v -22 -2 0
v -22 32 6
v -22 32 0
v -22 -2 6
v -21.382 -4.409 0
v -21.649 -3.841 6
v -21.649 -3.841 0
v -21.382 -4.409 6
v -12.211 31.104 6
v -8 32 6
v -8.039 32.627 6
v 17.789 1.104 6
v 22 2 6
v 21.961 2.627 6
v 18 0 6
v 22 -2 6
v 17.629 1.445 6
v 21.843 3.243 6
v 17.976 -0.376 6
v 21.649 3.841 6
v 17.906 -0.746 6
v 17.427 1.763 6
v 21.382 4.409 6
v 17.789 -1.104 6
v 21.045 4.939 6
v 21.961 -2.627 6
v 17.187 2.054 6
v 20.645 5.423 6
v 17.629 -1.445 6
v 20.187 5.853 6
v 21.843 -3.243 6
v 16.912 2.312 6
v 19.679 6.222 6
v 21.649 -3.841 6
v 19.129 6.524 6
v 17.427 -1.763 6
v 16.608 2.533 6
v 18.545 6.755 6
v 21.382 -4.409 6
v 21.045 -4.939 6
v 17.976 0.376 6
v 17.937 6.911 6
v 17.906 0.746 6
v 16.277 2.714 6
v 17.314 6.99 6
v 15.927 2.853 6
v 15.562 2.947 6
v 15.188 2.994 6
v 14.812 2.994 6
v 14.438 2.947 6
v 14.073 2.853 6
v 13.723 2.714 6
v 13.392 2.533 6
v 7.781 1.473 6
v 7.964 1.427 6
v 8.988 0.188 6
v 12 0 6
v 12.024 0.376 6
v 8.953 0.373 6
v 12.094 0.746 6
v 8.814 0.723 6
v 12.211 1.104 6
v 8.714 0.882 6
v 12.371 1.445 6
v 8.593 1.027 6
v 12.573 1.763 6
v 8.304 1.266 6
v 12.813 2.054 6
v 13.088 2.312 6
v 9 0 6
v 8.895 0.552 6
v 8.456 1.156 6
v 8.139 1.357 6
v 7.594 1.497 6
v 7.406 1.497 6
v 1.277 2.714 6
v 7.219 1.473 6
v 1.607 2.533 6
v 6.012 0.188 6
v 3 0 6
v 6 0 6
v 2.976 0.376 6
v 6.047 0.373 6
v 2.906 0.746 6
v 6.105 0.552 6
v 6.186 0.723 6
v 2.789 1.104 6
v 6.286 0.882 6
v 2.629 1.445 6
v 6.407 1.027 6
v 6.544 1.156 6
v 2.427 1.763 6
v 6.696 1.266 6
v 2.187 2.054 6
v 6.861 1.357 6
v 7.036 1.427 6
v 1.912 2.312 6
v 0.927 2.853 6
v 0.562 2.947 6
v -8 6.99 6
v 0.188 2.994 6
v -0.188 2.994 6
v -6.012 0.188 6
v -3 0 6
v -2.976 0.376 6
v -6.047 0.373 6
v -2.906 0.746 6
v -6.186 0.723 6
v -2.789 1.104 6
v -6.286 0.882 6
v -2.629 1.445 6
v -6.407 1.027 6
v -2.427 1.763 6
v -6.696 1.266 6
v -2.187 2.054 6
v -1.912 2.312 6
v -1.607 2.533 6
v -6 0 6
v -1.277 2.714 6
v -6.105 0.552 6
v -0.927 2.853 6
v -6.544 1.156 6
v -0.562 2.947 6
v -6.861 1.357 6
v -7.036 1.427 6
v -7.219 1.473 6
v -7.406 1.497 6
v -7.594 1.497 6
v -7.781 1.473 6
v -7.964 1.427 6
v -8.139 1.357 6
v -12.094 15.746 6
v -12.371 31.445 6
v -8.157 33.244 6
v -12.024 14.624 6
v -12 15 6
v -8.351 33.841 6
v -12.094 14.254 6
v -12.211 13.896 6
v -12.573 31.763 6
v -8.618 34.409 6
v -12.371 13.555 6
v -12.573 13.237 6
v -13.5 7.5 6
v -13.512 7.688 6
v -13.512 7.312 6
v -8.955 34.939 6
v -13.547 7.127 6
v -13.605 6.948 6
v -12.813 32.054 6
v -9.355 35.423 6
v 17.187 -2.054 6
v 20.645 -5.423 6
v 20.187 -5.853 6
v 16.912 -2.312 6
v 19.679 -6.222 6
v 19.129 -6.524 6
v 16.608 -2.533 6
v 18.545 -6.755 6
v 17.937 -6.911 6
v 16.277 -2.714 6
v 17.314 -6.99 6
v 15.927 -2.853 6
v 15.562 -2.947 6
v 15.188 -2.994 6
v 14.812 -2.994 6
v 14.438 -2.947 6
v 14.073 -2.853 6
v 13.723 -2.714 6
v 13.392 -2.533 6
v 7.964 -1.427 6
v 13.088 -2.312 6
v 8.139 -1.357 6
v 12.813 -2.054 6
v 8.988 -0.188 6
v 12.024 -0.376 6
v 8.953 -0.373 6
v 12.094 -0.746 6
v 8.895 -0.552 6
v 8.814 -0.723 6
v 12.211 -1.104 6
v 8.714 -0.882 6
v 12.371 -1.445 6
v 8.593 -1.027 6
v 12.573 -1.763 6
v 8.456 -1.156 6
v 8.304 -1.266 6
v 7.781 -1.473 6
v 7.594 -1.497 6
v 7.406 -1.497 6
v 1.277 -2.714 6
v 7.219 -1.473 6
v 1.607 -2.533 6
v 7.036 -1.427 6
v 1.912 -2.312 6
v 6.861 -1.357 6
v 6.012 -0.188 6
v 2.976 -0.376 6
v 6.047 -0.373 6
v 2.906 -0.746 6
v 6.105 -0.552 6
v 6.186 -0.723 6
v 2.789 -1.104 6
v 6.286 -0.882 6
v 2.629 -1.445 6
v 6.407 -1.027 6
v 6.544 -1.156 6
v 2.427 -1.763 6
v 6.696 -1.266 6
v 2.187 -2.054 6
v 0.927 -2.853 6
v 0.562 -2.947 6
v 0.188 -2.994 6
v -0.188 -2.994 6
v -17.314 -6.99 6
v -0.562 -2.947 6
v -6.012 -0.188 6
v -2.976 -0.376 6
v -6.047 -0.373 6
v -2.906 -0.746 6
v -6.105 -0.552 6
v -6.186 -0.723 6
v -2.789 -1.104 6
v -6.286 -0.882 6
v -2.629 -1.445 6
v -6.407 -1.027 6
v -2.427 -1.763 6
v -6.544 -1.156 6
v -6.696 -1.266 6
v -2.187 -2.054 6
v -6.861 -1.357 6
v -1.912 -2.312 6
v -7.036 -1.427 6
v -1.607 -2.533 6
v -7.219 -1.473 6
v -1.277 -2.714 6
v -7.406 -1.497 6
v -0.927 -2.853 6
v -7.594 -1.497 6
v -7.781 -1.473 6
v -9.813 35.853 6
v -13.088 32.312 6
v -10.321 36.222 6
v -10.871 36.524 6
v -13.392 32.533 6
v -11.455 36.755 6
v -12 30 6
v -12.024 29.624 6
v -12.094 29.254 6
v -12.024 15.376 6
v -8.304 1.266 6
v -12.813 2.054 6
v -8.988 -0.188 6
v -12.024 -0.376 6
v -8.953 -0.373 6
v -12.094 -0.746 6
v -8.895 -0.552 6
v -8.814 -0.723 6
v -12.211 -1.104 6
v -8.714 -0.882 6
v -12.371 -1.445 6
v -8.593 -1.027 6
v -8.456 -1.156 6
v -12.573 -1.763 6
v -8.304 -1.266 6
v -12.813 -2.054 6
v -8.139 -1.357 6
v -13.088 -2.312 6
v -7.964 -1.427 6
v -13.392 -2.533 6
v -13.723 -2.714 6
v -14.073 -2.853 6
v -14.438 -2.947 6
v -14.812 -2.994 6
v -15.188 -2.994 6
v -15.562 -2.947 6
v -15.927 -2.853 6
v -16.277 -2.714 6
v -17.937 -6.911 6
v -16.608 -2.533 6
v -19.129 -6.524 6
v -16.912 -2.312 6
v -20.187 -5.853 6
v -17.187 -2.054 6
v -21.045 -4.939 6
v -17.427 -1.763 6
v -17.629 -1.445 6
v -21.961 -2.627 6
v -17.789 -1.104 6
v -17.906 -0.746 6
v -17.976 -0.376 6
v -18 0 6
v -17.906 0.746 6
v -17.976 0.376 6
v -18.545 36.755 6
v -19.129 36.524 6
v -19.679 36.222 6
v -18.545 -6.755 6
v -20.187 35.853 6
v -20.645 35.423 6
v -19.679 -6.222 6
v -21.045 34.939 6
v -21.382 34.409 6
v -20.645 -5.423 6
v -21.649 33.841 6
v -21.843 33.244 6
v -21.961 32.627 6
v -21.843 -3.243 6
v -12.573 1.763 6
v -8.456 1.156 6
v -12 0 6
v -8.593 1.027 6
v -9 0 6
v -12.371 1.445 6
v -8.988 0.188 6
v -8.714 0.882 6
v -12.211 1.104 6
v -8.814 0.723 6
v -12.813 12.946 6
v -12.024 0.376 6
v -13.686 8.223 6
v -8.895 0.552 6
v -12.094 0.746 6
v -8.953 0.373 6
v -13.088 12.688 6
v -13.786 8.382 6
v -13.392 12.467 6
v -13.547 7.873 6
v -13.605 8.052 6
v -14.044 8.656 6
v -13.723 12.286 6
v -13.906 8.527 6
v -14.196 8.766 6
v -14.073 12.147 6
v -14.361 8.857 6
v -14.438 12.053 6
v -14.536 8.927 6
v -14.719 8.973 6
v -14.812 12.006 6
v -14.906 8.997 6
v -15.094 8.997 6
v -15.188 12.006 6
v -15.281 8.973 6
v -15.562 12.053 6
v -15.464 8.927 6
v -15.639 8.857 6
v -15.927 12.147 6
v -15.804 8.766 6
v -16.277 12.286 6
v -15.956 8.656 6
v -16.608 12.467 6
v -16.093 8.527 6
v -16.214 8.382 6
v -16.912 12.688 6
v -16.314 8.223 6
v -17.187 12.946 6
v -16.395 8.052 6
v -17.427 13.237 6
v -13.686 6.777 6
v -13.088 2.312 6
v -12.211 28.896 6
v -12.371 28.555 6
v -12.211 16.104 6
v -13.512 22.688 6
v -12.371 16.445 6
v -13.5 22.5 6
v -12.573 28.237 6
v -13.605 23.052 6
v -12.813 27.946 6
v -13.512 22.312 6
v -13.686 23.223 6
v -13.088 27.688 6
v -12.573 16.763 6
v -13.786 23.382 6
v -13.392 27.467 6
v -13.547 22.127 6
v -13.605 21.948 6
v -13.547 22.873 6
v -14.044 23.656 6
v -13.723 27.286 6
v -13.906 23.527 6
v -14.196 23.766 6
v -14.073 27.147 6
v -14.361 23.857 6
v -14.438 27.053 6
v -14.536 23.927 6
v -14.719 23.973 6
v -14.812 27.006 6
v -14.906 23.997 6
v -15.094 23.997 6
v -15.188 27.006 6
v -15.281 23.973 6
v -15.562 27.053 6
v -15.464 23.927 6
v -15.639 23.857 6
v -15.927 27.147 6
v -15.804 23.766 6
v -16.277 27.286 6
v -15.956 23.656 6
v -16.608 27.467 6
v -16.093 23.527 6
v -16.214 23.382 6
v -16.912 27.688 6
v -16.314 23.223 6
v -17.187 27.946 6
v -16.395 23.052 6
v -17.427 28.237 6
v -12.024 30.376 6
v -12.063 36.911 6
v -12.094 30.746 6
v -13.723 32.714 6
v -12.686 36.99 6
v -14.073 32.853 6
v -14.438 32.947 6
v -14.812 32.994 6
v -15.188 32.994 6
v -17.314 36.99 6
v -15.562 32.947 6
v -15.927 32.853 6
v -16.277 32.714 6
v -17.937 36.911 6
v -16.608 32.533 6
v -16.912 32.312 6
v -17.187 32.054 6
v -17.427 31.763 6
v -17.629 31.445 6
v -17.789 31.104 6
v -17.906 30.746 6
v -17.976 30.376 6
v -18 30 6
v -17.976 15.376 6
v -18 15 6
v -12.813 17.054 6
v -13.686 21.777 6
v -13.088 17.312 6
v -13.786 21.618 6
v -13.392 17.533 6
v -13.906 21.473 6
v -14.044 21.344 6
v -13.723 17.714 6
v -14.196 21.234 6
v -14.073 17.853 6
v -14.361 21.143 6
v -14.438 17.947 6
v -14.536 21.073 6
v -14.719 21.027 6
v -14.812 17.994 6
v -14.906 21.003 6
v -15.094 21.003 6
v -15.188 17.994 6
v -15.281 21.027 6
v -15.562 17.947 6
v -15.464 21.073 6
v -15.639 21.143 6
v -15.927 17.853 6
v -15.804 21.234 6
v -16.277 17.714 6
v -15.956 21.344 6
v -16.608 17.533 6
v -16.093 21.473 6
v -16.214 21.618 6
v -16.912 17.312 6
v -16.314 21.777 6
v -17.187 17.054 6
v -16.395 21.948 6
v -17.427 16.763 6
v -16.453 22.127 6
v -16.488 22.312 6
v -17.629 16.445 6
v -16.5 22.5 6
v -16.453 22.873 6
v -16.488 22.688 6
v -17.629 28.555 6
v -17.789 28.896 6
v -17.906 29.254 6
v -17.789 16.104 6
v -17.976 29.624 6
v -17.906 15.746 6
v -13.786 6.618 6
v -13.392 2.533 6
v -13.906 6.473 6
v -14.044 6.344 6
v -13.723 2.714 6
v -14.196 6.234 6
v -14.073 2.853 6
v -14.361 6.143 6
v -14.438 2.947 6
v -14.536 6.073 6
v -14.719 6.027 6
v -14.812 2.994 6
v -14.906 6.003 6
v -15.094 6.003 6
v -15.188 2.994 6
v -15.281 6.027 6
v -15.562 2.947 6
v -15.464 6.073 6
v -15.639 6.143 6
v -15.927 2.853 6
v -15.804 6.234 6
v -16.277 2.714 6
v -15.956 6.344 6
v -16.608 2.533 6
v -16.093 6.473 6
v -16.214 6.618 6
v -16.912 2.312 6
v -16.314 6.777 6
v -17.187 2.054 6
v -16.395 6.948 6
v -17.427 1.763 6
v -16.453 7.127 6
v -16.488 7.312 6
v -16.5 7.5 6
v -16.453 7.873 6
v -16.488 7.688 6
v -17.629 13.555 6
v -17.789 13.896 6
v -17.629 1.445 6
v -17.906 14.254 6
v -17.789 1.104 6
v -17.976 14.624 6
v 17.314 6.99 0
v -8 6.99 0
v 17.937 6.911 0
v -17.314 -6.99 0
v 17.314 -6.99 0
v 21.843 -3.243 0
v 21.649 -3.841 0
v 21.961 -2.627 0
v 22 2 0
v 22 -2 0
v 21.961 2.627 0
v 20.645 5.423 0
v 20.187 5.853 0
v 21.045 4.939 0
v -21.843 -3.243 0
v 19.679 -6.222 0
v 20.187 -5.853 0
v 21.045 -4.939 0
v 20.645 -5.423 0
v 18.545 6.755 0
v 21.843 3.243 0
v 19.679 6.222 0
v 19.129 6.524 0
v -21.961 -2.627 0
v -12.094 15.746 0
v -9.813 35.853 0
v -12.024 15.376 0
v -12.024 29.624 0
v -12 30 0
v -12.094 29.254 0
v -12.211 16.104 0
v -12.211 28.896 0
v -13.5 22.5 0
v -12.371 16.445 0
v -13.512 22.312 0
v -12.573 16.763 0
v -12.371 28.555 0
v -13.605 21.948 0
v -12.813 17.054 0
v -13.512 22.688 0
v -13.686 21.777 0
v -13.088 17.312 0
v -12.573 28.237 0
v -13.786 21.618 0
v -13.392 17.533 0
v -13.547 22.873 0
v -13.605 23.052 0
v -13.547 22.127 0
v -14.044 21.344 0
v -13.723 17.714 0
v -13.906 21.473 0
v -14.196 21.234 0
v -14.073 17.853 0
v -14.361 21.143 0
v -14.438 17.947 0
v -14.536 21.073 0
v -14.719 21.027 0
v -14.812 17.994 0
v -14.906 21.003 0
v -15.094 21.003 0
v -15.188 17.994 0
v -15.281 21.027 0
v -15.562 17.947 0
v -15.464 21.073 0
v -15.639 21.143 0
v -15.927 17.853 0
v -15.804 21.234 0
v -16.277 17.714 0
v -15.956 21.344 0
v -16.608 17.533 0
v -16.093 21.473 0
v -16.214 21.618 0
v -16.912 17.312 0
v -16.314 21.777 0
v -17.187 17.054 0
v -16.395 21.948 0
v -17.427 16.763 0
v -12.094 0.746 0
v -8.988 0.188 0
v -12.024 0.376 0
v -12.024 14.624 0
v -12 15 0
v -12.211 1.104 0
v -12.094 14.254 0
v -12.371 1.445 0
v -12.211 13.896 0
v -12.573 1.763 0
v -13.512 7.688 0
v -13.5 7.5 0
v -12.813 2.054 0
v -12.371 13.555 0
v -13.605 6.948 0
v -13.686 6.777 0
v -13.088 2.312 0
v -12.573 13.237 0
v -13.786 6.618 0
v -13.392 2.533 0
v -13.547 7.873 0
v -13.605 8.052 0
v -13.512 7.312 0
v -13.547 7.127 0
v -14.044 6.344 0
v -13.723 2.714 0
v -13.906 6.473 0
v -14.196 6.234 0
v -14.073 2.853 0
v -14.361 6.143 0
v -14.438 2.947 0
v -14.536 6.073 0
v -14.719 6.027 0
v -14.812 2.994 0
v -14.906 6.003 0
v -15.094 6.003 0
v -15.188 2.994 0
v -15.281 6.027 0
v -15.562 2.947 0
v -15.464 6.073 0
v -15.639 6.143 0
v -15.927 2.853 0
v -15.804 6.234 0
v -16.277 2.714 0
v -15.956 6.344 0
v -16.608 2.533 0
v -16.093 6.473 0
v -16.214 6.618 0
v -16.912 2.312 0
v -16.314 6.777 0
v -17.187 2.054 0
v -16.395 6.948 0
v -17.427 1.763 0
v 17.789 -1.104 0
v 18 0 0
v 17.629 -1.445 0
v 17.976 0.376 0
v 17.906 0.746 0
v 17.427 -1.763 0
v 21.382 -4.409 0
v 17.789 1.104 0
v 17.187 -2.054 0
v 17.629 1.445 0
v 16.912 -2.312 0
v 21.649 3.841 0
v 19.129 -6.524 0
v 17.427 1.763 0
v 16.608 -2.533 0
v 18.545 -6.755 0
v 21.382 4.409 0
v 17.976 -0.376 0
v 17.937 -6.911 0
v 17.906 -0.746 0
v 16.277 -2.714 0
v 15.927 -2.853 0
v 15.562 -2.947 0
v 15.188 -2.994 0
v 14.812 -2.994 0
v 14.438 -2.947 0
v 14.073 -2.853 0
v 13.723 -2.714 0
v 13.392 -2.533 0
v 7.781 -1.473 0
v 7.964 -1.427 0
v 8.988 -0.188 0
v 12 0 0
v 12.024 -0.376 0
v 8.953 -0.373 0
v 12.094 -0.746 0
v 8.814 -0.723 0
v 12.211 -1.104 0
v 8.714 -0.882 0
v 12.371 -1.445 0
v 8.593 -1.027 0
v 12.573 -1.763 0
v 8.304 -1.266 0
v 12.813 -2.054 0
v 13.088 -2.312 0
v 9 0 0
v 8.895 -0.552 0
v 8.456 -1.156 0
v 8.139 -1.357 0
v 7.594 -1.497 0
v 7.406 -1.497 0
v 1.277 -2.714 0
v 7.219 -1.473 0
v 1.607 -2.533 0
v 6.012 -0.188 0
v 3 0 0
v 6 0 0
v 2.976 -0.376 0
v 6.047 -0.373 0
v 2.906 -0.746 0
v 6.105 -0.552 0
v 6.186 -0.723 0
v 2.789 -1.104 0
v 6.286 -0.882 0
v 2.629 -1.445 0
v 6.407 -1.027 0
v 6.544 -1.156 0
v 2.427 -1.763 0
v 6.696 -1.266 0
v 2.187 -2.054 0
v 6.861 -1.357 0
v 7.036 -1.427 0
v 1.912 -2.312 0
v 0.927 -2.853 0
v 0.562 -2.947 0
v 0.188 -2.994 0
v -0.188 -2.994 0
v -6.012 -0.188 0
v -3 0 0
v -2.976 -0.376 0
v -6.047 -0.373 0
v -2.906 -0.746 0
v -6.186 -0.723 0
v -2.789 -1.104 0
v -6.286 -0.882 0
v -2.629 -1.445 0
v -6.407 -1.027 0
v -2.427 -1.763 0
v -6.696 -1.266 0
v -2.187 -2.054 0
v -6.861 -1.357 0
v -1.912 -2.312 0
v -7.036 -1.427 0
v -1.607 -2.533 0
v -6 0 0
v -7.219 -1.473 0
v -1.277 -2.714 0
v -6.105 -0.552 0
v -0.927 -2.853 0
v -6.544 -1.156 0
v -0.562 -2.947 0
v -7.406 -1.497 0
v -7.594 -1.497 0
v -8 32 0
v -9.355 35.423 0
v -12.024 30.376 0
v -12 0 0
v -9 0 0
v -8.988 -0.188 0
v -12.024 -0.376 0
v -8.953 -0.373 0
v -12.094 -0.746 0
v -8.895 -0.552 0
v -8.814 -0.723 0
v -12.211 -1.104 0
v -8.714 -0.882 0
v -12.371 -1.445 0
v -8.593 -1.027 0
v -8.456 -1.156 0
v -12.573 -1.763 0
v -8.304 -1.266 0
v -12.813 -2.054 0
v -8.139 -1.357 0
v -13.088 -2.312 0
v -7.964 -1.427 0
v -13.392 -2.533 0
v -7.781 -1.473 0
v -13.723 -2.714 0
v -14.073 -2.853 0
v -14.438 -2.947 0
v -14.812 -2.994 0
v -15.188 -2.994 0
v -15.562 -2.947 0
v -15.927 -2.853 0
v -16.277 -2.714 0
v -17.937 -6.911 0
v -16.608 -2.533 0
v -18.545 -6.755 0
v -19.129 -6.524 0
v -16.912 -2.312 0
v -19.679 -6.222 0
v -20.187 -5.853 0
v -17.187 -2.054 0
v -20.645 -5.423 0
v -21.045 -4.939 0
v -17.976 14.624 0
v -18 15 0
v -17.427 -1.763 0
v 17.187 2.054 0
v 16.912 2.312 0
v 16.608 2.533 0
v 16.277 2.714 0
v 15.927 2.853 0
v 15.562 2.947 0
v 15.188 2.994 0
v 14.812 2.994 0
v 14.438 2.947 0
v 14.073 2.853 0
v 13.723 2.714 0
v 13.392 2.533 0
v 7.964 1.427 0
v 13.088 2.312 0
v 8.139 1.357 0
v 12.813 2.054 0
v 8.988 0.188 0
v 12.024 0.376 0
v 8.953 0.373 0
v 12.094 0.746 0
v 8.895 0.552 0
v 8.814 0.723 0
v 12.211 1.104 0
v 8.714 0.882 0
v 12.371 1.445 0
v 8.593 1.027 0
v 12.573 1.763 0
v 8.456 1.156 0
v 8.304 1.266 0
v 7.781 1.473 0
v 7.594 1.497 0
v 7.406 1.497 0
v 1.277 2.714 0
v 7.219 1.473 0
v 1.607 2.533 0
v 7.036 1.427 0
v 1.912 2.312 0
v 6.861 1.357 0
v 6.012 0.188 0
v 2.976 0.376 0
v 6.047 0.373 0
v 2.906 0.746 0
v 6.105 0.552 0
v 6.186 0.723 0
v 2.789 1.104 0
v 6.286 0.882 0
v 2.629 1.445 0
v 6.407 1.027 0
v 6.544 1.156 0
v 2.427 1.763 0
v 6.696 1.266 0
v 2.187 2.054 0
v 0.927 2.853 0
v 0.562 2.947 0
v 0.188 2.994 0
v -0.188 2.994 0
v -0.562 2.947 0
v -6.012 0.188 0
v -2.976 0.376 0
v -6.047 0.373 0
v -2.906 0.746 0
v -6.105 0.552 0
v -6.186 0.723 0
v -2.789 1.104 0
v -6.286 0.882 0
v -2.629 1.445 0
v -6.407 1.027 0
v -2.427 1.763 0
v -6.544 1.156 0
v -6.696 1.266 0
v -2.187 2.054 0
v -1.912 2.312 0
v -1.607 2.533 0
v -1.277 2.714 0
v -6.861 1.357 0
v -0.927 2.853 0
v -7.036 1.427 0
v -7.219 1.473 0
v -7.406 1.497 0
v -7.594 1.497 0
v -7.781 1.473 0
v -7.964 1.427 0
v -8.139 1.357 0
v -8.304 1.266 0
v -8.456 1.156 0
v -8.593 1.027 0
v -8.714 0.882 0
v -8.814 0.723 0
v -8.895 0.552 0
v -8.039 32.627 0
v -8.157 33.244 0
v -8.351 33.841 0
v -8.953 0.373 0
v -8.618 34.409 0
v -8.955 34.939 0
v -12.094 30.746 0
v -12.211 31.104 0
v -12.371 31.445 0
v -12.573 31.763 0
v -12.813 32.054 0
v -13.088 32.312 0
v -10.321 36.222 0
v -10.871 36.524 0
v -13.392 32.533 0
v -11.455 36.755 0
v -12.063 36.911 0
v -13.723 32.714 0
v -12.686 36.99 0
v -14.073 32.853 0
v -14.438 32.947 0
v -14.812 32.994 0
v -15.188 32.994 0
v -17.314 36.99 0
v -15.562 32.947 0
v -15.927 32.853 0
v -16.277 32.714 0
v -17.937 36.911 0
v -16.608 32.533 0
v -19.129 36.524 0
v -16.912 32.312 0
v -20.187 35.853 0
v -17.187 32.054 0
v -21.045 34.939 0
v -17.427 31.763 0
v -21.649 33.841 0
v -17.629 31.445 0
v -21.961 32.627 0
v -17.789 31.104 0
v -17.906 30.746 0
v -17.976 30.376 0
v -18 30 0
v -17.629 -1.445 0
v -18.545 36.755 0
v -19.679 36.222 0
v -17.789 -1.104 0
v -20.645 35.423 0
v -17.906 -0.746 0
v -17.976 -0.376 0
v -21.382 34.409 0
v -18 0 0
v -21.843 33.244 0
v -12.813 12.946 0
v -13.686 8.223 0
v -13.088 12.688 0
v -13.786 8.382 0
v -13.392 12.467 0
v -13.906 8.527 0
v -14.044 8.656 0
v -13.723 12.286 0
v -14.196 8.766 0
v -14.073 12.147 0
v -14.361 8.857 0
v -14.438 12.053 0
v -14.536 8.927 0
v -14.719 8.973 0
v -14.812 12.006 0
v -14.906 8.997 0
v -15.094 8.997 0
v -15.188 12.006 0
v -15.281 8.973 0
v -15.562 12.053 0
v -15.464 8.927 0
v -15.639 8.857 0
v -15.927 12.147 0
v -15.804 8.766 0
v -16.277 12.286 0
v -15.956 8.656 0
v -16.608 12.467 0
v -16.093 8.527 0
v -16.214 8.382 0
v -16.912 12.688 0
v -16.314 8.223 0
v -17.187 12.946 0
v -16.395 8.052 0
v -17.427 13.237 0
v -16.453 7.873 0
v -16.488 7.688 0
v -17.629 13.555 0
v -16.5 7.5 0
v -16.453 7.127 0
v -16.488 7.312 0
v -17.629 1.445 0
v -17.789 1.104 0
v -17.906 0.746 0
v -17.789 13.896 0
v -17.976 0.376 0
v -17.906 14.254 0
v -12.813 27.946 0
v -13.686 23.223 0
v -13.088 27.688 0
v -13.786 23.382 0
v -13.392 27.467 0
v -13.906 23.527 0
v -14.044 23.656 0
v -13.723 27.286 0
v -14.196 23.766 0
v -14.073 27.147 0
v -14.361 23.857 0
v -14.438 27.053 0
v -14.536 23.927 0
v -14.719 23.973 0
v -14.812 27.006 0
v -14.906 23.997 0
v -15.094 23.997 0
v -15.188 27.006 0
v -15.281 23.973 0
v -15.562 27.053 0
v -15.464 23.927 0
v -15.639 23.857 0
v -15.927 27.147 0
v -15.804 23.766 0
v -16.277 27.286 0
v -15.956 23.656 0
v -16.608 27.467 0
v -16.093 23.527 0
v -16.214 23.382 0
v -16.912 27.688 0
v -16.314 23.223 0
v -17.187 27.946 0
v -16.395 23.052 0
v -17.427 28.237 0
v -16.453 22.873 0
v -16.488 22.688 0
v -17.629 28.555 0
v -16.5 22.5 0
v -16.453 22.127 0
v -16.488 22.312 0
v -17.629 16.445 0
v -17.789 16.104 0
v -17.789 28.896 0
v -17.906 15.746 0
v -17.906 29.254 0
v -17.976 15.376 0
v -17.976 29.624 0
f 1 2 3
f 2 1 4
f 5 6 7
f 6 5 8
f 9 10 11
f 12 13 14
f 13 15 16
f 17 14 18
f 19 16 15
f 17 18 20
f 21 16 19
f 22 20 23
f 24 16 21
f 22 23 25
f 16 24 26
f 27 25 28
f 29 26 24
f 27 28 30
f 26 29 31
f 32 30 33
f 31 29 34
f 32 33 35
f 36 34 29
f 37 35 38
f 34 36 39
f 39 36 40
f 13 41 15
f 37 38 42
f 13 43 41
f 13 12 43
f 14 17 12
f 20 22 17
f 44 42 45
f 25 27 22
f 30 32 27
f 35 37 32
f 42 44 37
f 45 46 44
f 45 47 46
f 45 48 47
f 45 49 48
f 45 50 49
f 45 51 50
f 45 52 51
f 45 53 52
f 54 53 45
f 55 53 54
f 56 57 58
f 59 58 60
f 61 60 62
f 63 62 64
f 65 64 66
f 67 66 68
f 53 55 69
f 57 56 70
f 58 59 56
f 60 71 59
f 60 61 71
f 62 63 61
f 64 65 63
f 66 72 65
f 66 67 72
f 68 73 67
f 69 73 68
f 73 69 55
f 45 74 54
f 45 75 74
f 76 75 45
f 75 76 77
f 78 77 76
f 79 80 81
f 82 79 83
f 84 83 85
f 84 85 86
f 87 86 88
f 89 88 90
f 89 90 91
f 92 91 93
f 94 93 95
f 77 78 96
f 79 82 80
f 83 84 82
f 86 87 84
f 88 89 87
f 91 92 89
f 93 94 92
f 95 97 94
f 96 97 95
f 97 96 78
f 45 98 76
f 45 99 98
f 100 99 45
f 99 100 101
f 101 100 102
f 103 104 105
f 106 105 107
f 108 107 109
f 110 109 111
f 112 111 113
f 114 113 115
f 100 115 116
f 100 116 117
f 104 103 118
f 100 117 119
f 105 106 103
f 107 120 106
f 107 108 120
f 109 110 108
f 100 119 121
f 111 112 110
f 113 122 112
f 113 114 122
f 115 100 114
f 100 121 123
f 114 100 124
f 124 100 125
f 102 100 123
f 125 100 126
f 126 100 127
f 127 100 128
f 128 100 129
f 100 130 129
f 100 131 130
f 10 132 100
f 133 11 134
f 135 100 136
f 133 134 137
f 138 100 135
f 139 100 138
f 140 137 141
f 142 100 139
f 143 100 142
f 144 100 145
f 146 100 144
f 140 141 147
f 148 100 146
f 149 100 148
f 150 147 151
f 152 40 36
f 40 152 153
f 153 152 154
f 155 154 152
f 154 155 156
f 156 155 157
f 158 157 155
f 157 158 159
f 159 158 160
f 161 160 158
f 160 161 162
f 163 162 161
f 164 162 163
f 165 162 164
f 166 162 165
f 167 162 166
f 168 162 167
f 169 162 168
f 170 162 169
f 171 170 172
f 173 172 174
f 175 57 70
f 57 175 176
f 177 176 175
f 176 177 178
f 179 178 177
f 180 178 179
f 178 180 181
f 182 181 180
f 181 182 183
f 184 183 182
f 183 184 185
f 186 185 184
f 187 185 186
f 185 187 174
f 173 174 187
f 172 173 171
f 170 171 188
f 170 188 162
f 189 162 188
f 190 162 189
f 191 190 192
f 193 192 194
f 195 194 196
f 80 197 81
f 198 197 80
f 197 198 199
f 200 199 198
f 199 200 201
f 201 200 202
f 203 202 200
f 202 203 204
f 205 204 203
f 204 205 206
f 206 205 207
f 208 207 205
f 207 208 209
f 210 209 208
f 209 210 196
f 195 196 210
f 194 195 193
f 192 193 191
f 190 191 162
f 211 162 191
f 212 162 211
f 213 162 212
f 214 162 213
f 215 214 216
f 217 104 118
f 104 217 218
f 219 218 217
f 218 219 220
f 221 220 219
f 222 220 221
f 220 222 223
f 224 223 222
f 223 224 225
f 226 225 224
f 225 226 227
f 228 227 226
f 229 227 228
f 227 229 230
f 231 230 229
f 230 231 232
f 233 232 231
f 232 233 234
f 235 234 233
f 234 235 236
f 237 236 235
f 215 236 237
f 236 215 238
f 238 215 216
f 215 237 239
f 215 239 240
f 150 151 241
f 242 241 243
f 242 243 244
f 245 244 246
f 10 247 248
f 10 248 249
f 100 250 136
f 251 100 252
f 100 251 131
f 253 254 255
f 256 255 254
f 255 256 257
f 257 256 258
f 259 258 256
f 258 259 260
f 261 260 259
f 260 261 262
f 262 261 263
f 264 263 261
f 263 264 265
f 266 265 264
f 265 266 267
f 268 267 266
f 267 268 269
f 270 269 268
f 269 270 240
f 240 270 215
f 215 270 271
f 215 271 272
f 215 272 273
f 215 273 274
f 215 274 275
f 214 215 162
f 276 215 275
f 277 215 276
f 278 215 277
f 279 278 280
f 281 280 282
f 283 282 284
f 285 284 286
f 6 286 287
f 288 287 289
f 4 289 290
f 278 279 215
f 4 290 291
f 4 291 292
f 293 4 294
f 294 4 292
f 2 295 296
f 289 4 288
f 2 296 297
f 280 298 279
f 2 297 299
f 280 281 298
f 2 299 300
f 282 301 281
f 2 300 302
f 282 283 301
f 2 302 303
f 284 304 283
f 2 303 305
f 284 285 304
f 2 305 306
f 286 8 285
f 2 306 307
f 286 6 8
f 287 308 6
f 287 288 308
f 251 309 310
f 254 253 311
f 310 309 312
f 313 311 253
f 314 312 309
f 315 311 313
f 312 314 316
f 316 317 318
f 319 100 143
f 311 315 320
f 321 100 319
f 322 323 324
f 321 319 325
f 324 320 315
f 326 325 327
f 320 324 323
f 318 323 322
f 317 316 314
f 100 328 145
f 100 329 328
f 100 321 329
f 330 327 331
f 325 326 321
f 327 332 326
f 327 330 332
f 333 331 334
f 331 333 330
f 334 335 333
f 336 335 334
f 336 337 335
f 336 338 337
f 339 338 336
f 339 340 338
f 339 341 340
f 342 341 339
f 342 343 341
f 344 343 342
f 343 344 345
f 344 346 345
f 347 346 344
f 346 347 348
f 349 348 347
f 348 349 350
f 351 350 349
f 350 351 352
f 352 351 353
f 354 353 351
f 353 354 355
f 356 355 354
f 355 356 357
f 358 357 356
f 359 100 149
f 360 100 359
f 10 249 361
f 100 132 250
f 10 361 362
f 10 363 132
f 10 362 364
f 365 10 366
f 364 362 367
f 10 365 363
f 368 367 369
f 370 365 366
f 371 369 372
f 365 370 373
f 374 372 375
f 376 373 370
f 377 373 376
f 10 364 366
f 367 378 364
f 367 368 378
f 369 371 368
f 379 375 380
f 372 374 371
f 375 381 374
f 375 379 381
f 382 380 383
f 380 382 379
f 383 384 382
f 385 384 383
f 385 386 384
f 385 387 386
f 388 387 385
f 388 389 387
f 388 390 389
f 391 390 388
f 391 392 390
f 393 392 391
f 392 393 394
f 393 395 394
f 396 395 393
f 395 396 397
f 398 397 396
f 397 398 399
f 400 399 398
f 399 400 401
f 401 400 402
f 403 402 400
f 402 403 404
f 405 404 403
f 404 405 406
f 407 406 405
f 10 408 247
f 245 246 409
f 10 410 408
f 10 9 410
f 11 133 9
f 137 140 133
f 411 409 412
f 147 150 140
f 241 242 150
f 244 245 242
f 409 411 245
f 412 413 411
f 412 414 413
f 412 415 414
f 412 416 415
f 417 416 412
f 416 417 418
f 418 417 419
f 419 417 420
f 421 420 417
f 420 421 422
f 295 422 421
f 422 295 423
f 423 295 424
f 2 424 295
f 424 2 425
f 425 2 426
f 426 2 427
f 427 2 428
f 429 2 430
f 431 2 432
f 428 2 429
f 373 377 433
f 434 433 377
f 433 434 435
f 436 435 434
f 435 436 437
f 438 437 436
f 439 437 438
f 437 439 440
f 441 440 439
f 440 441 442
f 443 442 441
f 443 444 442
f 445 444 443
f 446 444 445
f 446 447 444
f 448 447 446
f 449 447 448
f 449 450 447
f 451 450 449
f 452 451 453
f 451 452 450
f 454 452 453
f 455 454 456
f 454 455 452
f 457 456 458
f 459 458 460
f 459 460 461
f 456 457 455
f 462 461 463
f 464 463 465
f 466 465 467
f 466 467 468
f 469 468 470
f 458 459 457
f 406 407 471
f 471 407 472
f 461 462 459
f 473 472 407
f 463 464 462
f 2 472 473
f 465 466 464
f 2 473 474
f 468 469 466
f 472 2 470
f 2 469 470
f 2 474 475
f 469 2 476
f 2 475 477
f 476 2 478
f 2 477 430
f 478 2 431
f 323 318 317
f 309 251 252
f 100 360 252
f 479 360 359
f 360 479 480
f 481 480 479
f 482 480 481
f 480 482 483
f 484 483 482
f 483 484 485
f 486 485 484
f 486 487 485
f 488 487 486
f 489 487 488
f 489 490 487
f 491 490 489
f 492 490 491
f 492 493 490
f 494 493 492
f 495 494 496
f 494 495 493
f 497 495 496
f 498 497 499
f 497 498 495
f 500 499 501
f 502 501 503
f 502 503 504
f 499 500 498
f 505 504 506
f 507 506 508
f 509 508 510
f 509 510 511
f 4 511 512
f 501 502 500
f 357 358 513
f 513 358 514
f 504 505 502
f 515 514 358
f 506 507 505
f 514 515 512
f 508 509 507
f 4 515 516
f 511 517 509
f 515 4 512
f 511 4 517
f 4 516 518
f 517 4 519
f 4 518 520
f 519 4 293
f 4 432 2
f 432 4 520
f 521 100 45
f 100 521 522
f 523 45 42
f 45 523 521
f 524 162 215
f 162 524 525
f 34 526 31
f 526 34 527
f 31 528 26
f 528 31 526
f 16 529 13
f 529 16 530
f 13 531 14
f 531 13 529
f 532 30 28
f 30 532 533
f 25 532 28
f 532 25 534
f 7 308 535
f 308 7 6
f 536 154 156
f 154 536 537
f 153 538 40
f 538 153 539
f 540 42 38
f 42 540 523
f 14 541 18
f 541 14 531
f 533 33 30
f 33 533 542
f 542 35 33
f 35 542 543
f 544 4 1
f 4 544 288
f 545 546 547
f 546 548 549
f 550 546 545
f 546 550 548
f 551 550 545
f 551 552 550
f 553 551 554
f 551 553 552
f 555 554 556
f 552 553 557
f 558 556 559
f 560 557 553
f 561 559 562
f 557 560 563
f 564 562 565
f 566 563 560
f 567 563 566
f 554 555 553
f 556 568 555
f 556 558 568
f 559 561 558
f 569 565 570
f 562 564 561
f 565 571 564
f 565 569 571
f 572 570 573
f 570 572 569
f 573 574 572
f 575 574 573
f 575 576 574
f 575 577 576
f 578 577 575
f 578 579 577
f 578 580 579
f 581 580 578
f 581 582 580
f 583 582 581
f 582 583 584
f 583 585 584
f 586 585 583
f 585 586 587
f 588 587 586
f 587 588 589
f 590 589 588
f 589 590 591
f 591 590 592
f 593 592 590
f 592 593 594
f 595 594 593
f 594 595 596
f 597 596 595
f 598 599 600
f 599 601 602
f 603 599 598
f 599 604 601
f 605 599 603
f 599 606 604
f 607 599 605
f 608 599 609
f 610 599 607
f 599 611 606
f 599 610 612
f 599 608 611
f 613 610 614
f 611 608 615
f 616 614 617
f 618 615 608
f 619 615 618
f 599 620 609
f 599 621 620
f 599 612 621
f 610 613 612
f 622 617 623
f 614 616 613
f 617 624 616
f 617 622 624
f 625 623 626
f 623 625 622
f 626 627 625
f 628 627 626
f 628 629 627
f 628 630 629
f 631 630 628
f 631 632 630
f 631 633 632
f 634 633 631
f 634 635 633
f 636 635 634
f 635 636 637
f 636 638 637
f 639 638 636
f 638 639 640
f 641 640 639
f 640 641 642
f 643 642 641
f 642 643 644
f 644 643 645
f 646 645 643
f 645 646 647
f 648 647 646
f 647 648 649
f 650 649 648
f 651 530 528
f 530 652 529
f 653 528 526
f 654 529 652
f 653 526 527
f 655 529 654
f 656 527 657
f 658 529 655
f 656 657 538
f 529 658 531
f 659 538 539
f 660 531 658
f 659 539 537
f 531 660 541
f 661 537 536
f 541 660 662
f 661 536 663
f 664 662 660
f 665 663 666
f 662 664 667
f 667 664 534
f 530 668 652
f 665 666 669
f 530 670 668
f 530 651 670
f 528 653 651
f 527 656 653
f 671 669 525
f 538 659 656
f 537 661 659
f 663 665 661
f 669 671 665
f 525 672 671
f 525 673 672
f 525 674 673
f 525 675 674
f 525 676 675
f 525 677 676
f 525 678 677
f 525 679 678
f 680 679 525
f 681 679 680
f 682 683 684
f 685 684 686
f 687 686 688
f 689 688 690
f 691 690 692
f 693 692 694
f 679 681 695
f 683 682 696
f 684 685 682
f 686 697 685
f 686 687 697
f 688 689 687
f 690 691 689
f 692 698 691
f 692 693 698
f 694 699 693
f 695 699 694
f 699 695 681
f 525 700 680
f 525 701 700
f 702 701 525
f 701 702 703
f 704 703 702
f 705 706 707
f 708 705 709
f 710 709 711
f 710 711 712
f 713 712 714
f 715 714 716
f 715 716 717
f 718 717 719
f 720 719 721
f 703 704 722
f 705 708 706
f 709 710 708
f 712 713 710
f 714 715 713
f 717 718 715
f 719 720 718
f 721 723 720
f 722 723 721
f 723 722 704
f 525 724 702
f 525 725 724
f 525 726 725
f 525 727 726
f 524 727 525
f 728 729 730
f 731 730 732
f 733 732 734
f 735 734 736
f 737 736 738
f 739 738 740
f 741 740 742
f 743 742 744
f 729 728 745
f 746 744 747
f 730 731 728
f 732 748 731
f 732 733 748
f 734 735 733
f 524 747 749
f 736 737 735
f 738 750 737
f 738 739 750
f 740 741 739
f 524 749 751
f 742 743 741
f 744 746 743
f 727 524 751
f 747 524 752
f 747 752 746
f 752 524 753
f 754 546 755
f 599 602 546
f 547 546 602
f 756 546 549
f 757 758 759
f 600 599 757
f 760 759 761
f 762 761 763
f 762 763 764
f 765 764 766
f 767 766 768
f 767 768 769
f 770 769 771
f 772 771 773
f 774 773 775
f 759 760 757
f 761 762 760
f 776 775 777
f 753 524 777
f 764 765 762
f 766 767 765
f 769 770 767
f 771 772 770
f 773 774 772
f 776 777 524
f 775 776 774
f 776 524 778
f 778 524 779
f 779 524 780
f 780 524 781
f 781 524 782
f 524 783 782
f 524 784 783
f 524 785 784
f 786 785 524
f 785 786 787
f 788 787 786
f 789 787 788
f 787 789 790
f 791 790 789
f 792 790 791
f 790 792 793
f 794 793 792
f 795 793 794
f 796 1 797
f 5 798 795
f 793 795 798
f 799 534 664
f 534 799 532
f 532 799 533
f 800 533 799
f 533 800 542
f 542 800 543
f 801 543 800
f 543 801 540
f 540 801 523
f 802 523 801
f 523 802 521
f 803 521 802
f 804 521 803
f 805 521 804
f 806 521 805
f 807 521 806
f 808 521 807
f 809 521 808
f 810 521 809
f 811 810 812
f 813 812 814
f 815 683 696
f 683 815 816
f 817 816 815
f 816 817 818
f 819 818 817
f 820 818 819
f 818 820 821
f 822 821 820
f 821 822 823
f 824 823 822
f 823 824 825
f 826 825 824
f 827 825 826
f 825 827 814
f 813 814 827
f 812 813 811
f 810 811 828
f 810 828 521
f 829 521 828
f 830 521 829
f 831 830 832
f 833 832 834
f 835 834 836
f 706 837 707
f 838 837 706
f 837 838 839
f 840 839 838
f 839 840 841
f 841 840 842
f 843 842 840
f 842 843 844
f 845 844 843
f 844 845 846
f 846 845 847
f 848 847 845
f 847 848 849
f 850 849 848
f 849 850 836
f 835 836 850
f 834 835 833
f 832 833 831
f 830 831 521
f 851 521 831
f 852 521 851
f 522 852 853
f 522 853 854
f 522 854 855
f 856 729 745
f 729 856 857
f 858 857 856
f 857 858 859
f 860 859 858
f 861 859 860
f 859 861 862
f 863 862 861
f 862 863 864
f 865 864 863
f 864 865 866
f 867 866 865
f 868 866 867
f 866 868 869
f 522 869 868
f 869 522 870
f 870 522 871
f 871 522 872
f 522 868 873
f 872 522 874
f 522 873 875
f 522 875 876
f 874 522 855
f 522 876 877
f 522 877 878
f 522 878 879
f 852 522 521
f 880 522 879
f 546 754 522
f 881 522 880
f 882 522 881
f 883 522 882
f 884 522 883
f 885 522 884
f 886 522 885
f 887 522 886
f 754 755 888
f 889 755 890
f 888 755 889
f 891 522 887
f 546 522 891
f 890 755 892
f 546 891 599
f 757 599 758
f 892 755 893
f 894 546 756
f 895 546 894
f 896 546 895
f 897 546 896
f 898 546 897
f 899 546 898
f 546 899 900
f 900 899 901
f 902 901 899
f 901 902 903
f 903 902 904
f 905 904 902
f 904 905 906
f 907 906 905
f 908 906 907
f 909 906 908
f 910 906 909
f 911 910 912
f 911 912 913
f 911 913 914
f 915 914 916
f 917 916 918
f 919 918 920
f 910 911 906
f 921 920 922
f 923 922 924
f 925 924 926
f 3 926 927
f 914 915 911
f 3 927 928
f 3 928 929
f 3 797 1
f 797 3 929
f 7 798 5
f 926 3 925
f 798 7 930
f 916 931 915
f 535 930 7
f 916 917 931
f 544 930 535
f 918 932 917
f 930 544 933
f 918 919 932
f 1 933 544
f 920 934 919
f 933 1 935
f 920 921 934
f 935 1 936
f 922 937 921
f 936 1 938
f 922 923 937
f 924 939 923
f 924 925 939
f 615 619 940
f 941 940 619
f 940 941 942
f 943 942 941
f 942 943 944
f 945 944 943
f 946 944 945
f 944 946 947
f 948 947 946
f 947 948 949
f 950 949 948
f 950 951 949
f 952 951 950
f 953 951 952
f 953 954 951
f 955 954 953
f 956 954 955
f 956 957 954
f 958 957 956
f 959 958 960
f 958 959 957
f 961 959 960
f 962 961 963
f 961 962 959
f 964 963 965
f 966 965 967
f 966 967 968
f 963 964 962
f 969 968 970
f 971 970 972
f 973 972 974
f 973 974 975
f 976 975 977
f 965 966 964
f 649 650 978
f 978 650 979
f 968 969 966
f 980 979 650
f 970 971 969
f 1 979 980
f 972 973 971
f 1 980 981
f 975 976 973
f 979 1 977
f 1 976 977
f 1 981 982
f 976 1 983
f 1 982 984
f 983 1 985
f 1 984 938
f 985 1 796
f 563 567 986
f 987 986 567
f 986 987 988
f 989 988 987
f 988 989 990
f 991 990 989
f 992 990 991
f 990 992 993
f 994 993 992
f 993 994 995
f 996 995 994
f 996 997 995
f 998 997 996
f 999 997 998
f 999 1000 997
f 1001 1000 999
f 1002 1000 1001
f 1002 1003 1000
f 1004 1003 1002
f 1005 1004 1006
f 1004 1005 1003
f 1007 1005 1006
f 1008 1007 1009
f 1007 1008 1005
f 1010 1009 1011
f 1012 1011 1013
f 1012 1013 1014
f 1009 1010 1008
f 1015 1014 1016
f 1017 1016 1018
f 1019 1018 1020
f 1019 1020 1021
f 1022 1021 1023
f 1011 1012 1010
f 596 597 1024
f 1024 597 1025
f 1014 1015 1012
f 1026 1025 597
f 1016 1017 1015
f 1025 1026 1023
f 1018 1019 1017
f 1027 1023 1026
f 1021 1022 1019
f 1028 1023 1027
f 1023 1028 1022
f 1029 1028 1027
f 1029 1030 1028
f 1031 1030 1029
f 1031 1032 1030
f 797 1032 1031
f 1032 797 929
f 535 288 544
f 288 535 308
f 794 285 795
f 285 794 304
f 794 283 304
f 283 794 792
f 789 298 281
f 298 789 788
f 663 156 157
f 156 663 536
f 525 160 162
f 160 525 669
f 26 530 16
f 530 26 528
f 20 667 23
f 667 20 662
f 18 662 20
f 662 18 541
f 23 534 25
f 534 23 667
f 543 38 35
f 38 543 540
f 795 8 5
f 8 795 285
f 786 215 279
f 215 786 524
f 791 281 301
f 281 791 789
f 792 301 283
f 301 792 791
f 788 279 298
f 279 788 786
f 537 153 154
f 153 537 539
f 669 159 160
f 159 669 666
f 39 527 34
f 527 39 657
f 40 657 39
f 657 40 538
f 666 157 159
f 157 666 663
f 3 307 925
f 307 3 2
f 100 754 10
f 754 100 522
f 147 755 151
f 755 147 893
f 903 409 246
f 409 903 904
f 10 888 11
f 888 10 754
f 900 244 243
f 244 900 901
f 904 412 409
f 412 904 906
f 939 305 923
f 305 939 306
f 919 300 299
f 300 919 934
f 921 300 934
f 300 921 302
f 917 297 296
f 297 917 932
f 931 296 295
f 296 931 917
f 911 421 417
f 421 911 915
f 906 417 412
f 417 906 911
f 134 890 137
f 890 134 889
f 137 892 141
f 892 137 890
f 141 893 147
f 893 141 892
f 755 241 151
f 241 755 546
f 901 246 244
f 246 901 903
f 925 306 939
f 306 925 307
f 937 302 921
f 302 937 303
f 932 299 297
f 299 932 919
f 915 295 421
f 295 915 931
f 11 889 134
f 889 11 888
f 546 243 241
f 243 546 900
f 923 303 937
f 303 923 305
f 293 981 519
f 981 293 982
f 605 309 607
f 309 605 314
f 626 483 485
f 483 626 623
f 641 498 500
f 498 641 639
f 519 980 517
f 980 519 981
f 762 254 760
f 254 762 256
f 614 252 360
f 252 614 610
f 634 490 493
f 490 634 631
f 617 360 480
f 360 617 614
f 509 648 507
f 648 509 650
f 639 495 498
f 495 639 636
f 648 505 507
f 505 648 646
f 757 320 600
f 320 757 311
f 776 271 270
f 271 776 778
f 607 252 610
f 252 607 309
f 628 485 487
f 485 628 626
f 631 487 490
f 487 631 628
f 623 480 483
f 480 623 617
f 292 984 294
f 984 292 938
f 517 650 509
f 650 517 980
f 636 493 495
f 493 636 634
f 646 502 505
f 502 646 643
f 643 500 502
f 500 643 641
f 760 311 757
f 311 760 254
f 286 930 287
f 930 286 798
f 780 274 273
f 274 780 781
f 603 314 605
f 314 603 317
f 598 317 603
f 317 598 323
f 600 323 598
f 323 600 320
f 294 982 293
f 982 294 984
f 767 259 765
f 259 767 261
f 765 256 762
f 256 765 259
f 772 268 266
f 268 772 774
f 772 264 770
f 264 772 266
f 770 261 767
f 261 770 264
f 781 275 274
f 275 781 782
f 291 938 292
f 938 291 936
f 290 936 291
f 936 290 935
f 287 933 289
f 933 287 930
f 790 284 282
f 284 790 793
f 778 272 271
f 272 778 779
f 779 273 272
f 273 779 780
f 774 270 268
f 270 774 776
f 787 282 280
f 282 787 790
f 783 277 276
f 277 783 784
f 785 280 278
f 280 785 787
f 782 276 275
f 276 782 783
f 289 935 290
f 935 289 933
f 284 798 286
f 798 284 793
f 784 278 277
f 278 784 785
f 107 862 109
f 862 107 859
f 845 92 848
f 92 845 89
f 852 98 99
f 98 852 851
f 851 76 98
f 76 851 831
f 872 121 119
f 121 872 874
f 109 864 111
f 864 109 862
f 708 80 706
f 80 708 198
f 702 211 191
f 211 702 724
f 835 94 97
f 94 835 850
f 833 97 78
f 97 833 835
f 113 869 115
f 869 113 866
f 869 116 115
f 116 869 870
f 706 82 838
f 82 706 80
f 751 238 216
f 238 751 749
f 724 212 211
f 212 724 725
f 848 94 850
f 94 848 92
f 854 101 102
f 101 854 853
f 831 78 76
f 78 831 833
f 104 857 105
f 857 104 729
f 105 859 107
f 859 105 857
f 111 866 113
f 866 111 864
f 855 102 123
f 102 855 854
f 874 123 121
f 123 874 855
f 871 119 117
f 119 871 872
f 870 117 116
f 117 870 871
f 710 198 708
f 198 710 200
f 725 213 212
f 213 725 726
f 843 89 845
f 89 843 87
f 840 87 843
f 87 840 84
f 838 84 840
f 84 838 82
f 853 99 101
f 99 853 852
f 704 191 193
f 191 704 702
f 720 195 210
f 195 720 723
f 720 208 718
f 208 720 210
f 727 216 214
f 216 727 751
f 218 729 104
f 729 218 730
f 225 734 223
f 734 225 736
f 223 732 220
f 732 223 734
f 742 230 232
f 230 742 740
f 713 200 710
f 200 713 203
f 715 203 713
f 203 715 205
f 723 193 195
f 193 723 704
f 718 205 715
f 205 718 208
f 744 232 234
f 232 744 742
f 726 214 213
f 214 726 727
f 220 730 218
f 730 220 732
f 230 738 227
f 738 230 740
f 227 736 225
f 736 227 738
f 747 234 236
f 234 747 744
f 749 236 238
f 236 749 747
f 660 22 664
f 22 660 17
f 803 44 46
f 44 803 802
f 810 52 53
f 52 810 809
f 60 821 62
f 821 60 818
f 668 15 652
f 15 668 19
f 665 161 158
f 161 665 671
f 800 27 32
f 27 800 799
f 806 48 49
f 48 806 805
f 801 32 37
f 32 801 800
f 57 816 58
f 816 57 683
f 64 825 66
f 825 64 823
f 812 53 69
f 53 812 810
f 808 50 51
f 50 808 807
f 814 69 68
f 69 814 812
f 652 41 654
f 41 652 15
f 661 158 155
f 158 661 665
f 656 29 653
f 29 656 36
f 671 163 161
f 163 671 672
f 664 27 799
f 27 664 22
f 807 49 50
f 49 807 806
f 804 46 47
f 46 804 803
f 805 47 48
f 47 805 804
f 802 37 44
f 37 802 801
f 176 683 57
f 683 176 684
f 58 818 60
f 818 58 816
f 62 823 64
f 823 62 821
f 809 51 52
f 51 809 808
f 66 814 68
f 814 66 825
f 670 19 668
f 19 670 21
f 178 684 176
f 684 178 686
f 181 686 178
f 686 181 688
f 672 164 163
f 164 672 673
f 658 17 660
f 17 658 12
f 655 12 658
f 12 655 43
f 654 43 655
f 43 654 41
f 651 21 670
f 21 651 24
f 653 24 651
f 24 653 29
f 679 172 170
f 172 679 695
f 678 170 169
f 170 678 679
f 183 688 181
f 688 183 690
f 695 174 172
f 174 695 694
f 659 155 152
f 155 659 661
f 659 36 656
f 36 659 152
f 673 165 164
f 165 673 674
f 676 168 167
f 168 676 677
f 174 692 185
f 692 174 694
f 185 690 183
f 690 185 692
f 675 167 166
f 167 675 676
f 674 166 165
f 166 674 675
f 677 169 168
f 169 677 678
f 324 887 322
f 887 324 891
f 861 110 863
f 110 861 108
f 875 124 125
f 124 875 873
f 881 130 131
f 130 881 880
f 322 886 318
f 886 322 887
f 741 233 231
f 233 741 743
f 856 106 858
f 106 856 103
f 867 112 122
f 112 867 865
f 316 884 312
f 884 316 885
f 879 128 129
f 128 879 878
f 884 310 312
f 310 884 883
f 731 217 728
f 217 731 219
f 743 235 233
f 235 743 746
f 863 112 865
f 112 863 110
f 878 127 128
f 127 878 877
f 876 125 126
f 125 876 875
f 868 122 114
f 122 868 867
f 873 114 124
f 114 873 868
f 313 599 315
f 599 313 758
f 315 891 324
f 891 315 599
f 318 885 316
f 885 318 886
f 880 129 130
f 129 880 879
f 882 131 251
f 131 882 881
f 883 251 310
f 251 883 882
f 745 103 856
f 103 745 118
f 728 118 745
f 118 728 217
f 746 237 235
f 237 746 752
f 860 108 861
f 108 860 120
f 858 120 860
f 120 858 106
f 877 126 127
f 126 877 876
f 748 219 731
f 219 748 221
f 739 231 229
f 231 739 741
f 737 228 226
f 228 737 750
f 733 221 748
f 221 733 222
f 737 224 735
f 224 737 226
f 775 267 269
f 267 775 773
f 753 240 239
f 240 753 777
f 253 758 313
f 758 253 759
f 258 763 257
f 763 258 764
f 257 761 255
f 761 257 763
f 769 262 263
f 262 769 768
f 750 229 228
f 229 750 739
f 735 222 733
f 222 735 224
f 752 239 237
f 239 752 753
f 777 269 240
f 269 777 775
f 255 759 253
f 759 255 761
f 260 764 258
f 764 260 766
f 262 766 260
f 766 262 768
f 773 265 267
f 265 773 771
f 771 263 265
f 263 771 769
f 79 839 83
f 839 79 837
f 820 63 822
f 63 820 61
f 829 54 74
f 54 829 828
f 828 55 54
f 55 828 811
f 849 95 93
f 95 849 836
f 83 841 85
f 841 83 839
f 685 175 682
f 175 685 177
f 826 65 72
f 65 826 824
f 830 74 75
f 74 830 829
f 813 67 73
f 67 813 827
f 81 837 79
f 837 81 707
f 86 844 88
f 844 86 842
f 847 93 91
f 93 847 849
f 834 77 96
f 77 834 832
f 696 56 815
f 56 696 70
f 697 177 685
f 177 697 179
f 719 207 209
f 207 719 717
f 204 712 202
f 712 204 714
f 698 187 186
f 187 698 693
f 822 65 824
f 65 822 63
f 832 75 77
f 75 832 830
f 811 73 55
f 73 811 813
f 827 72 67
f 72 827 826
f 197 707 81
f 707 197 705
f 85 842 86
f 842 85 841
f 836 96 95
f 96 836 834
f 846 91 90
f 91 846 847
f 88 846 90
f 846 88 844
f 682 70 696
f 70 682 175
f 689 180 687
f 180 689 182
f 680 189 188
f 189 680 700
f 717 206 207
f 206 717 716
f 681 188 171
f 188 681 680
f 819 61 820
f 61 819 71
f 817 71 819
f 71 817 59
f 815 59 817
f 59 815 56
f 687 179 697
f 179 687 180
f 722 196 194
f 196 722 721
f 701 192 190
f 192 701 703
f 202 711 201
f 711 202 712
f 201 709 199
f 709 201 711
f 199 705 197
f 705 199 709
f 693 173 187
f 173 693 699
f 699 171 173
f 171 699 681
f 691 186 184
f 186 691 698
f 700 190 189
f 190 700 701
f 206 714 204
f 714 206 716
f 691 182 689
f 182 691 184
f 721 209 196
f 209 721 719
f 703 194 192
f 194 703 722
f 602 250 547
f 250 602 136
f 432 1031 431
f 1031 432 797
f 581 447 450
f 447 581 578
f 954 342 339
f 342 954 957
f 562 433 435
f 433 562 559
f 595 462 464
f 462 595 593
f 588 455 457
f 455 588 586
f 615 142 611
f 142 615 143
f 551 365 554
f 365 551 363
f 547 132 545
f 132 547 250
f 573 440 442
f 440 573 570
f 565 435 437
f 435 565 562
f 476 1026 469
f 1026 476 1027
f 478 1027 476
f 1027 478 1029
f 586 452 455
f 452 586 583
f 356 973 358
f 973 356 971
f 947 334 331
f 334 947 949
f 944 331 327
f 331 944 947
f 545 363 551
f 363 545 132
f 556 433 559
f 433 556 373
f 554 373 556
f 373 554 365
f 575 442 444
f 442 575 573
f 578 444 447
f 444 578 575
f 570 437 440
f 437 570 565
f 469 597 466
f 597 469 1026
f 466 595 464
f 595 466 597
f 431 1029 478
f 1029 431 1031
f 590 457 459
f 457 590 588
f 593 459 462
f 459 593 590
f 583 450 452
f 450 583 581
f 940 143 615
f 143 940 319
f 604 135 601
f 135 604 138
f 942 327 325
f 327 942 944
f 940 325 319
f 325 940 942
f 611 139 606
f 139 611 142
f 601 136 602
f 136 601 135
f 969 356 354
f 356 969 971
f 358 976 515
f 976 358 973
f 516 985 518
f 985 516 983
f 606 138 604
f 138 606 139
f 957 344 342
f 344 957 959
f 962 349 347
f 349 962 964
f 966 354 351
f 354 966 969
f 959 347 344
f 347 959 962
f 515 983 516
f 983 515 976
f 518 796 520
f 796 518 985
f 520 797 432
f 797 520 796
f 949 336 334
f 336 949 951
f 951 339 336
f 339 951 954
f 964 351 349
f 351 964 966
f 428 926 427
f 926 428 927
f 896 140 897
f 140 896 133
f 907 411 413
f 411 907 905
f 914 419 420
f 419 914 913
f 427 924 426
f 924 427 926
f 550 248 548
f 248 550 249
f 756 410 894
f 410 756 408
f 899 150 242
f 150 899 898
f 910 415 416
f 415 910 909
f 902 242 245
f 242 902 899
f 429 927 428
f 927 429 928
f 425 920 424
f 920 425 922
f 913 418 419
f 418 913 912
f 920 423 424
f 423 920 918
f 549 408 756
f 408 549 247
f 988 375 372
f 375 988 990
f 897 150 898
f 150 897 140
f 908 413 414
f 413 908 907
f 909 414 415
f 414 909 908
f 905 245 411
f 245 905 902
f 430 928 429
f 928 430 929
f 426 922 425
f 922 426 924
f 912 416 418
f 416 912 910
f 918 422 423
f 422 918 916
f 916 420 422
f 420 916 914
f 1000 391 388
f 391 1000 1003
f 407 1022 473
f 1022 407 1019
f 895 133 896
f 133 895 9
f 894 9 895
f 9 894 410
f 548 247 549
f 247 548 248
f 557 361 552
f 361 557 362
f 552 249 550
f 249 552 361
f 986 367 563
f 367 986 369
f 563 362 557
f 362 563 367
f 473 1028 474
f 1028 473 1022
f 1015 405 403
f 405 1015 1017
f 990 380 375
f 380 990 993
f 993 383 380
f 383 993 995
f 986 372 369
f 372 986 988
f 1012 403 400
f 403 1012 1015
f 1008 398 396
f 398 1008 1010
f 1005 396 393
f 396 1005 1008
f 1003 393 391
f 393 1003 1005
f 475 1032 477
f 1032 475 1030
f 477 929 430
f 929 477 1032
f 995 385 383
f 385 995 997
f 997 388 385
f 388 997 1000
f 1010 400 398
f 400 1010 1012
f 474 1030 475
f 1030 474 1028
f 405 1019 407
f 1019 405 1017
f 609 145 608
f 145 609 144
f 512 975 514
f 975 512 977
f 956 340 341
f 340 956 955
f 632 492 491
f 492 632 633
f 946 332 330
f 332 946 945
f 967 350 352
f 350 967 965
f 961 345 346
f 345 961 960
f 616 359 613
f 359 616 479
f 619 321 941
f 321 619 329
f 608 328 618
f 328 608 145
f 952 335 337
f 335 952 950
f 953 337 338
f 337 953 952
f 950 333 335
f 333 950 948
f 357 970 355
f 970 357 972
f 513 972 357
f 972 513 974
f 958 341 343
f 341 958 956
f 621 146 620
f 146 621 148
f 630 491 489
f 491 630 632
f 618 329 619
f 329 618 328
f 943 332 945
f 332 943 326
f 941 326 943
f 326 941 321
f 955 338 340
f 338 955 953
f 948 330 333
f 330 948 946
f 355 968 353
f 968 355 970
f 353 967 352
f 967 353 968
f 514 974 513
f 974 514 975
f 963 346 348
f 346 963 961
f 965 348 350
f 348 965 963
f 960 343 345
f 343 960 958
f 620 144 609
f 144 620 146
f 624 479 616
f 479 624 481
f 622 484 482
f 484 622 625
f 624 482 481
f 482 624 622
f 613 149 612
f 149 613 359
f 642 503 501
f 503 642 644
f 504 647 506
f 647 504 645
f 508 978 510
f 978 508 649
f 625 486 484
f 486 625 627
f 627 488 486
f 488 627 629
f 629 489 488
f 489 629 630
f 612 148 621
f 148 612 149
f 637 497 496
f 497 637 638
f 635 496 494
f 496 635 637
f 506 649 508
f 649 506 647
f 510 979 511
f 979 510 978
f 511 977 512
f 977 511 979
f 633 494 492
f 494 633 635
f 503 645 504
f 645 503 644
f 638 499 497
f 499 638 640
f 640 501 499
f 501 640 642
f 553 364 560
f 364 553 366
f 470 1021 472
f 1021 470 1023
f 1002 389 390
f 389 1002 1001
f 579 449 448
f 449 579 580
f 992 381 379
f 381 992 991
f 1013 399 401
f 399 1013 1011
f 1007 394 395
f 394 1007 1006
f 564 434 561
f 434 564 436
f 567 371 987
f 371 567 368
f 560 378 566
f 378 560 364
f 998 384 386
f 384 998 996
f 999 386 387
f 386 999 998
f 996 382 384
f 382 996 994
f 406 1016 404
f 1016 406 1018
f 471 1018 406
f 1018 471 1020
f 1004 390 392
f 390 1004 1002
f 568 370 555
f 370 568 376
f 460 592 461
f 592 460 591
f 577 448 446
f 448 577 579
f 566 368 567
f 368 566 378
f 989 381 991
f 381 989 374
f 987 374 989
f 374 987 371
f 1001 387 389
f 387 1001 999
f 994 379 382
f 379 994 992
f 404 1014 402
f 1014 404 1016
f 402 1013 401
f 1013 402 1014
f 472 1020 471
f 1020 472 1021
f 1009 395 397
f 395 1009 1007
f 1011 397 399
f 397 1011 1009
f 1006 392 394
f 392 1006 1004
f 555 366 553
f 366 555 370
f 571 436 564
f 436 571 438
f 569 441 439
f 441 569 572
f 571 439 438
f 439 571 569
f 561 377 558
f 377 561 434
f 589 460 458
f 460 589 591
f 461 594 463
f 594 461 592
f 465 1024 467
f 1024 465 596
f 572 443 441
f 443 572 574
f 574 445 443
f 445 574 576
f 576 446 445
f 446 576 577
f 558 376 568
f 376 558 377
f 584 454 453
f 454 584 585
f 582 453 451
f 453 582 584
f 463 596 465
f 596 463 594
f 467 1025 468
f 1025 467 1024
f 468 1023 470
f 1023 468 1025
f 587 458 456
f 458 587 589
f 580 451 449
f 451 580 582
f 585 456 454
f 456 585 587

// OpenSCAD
$fn = 50;


difference() {
	union() {
		*color(alpha = 1.0000000000, c = "gray") {
			translate(v = [0, 7, 0]) {
				linear_extrude(height = 1) {
					text(font = "Arial:style=Bold", halign = "center", size = 4.5000000000, text = "COMMENT plate main", valign = "center");
				}
			}
		}
		hull() {
			translate(v = [-17.0000000000, 2.0000000000, 0]) {
				cylinder(h = 6, r = 5);
			}
			translate(v = [17.0000000000, 2.0000000000, 0]) {
				cylinder(h = 6, r = 5);
			}
			translate(v = [-17.0000000000, -2.0000000000, 0]) {
				cylinder(h = 6, r = 5);
			}
			translate(v = [17.0000000000, -2.0000000000, 0]) {
				cylinder(h = 6, r = 5);
			}
		}
		*color(alpha = 1.0000000000, c = "gray") {
			translate(v = [0, 7, 0]) {
				linear_extrude(height = 1) {
					text(font = "Arial:style=Bold", halign = "center", size = 4.5000000000, text = "COMMENT plate main", valign = "center");
				}
			}
		}
		translate(v = [-15.0000000000, 15.0000000000, 0]) {
			hull() {
				translate(v = [-2.0000000000, 17.0000000000, 0]) {
					cylinder(h = 6, r = 5);
				}
				translate(v = [2.0000000000, 17.0000000000, 0]) {
					cylinder(h = 6, r = 5);
				}
				translate(v = [-2.0000000000, -17.0000000000, 0]) {
					cylinder(h = 6, r = 5);
				}
				translate(v = [2.0000000000, -17.0000000000, 0]) {
					cylinder(h = 6, r = 5);
				}
			}
		}
	}
	union() {
		*color(alpha = 1.0000000000, c = "gray") {
			translate(v = [0, 7, 0]) {
				linear_extrude(height = 1) {
					text(font = "Arial:style=Bold", halign = "center", size = 4.5000000000, text = "COMMENT holes main", valign = "center");
				}
			}
		}
		translate(v = [-15.0000000000, 0.0000000000, 0]) {
			translate(v = [0, 0, -100]) {
				cylinder(h = 200, r = 3.0000000000);
			}
		}
		translate(v = [0, 0, -100]) {
			cylinder(h = 200, r = 3.0000000000);
		}
		translate(v = [15.0000000000, 0.0000000000, 0]) {
			translate(v = [0, 0, -100]) {
				cylinder(h = 200, r = 3.0000000000);
			}
		}
		translate(v = [-15.0000000000, 0.0000000000, 0]) {
			translate(v = [0, 0, -100]) {
				cylinder(h = 200, r = 1.5000000000);
			}
		}
		translate(v = [-7.5000000000, 0.0000000000, 0]) {
			translate(v = [0, 0, -100]) {
				cylinder(h = 200, r = 1.5000000000);
			}
		}
		translate(v = [0, 0, -100]) {
			cylinder(h = 200, r = 1.5000000000);
		}
		translate(v = [7.5000000000, 0.0000000000, 0]) {
			translate(v = [0, 0, -100]) {
				cylinder(h = 200, r = 1.5000000000);
			}
		}
		translate(v = [15.0000000000, 0.0000000000, 0]) {
			translate(v = [0, 0, -100]) {
				cylinder(h = 200, r = 1.5000000000);
			}
		}
		*color(alpha = 1.0000000000, c = "gray") {
			translate(v = [0, 7, 0]) {
				linear_extrude(height = 1) {
					text(font = "Arial:style=Bold", halign = "center", size = 4.5000000000, text = "COMMENT holes main", valign = "center");
				}
			}
		}
		translate(v = [-15.0000000000, 0.0000000000, 0]) {
			translate(v = [0, 0, -100]) {
				cylinder(h = 200, r = 3.0000000000);
			}
		}
		translate(v = [-15.0000000000, 15.0000000000, 0]) {
			translate(v = [0, 0, -100]) {
				cylinder(h = 200, r = 3.0000000000);
			}
		}
		translate(v = [-15.0000000000, 30.0000000000, 0]) {
			translate(v = [0, 0, -100]) {
				cylinder(h = 200, r = 3.0000000000);
			}
		}
		translate(v = [-15.0000000000, 0.0000000000, 0]) {
			translate(v = [0, 0, -100]) {
				cylinder(h = 200, r = 1.5000000000);
			}
		}
		translate(v = [-15.0000000000, 7.5000000000, 0]) {
			translate(v = [0, 0, -100]) {
				cylinder(h = 200, r = 1.5000000000);
			}
		}
		translate(v = [-15.0000000000, 15.0000000000, 0]) {
			translate(v = [0, 0, -100]) {
				cylinder(h = 200, r = 1.5000000000);
			}
		}
		translate(v = [-15.0000000000, 22.5000000000, 0]) {
			translate(v = [0, 0, -100]) {
				cylinder(h = 200, r = 1.5000000000);
			}
		}
		translate(v = [-15.0000000000, 30.0000000000, 0]) {
			translate(v = [0, 0, -100]) {
				cylinder(h = 200, r = 1.5000000000);
			}
		}
	}
}
